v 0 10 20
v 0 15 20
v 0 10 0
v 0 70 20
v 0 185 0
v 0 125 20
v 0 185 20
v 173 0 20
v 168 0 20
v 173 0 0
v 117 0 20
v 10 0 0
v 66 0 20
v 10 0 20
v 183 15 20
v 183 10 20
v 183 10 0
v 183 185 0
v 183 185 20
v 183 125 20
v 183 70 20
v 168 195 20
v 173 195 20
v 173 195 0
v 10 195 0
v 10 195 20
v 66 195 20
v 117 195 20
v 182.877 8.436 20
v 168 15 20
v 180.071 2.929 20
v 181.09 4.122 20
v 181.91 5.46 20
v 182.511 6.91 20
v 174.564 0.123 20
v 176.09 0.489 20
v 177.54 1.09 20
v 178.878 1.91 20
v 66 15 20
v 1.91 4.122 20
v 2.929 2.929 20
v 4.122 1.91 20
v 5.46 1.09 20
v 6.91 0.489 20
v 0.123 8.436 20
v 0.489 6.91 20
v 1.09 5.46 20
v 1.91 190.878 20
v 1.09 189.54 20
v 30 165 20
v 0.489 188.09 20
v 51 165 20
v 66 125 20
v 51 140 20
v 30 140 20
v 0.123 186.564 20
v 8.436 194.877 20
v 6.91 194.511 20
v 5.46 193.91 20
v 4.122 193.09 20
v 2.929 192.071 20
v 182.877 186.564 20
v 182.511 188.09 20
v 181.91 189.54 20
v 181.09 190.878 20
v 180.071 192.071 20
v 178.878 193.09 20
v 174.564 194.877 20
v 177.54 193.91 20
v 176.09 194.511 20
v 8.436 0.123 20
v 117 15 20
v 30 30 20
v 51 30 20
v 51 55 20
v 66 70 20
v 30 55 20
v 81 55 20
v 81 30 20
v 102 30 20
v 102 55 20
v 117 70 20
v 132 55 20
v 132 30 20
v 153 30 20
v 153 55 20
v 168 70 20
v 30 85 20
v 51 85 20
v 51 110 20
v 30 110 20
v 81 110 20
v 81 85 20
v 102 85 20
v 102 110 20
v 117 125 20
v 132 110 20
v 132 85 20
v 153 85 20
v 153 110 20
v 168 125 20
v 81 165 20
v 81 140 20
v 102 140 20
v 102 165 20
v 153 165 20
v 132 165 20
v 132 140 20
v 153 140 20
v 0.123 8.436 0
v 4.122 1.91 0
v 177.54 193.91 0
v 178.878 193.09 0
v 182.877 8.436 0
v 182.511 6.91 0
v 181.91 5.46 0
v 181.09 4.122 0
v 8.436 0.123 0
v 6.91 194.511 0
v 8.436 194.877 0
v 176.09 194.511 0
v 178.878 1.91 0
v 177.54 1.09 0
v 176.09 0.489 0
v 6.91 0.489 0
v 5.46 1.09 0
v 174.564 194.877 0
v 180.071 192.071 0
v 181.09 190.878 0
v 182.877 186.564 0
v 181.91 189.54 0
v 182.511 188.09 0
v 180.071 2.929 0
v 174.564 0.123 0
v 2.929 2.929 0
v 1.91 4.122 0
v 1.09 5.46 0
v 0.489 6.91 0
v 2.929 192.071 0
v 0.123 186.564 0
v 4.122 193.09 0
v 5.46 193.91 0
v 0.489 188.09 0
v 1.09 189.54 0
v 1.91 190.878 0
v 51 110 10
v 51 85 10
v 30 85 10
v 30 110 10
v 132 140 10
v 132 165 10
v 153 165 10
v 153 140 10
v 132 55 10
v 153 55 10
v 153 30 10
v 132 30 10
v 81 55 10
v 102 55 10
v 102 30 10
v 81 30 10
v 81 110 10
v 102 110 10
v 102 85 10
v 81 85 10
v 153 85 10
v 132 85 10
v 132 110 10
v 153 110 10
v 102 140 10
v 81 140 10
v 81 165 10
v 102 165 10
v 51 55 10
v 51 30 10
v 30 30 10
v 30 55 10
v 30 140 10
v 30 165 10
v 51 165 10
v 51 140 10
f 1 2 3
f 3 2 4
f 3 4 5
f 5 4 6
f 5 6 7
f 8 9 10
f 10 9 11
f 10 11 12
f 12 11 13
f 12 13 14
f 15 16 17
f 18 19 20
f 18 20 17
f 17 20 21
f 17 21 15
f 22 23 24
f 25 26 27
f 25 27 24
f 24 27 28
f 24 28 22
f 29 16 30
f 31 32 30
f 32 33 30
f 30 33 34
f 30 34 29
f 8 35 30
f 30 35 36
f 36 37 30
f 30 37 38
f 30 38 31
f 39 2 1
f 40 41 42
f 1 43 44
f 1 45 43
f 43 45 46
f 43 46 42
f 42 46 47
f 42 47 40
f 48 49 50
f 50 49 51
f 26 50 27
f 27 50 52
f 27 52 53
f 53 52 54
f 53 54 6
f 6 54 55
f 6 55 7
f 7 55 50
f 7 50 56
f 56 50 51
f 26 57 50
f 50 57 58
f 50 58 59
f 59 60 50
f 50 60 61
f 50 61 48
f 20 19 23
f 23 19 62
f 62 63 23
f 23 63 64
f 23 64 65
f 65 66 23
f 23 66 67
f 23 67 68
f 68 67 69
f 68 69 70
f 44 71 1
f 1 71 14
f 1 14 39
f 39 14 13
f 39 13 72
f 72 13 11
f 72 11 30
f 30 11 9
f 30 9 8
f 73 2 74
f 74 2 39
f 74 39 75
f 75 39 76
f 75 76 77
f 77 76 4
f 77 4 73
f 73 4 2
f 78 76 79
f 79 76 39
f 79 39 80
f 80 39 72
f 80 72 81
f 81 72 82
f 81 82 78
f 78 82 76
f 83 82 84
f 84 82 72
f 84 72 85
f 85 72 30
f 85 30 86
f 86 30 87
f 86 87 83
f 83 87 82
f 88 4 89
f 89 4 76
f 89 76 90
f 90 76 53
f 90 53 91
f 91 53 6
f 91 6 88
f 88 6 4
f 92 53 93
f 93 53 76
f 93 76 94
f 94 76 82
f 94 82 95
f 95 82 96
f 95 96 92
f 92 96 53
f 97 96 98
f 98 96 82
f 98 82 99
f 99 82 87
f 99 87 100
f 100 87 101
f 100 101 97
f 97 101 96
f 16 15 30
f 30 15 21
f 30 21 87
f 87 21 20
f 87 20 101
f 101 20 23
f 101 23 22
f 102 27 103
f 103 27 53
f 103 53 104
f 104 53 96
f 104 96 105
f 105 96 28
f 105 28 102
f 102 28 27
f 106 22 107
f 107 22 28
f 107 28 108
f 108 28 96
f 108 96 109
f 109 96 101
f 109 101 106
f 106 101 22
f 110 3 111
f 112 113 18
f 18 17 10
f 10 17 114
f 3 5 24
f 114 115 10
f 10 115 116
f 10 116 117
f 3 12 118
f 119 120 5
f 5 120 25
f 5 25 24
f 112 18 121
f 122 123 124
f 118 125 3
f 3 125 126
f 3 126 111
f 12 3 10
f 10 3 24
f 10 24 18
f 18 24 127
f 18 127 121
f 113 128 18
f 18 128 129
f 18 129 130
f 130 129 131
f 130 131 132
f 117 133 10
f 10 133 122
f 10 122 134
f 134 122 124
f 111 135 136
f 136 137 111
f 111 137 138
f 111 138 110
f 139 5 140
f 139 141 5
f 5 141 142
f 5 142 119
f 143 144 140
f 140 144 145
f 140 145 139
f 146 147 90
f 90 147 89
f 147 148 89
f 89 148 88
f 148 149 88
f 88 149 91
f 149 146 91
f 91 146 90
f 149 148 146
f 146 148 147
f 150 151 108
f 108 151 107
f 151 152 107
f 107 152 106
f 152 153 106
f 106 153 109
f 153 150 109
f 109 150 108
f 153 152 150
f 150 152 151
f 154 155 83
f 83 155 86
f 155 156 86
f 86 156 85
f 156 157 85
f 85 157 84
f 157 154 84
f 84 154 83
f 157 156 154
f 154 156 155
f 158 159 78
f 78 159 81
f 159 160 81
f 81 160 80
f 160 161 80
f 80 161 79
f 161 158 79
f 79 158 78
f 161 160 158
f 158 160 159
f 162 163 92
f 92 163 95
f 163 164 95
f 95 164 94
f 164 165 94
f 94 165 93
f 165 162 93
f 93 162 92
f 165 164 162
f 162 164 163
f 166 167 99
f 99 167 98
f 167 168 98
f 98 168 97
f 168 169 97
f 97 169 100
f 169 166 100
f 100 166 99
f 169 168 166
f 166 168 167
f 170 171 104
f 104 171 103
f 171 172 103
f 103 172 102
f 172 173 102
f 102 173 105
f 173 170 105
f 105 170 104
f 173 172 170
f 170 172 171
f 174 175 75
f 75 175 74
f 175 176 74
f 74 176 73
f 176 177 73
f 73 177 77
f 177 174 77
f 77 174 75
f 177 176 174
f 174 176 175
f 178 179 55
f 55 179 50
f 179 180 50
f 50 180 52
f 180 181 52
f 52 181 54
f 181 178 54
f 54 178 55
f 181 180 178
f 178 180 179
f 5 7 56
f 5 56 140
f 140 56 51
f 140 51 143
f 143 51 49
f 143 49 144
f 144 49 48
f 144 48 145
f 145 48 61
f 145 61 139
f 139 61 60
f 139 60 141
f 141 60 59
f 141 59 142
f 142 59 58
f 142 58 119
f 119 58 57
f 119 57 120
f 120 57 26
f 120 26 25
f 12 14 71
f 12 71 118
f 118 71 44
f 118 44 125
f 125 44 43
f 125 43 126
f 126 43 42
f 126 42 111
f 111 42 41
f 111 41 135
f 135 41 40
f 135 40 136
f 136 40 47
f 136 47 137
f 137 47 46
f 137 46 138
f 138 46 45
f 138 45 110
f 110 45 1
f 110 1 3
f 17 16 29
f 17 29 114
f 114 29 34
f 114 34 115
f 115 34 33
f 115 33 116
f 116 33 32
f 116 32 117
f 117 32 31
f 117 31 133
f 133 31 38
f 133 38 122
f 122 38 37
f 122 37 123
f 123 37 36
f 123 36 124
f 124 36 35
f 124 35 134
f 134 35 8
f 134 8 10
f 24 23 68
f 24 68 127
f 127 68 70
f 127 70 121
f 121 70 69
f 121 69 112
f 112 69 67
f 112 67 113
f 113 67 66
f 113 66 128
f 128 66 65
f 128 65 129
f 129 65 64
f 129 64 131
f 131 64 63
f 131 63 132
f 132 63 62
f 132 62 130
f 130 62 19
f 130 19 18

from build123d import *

# Parameters (mm, degrees)
SKETCH1_W           = 183
SKETCH1_H           = 195
BOSS_EXTRUDE2_DEPTH = 20
SKETCH3_W           = 21
SKETCH3_H           = 25
CUT_EXTRUDE1_DEPTH  = 10
CUT_EXTRUDE2_DEPTH  = 135


with BuildPart() as part:
    # Sketch1 → Boss-Extrude2 (new body)
    with BuildSketch(Plane.XY):
        with Locations((91.5, 97.5)):
            Rectangle(SKETCH1_W, SKETCH1_H)
    extrude(amount=BOSS_EXTRUDE2_DEPTH)

    # Sketch3 → Cut-Extrude1 (cut)
    with BuildSketch(Plane.XY.offset(20)):
        with Locations((40.5, 97.5)):
            Rectangle(SKETCH3_W, SKETCH3_H)
        with Locations((40.5, 152.5)):
            Rectangle(SKETCH3_W, SKETCH3_H)
        with Locations((91.5, 152.5)):
            Rectangle(SKETCH3_W, SKETCH3_H)
        with Locations((40.5, 42.5)):
            Rectangle(SKETCH3_W, SKETCH3_H)
        with Locations((91.5, 97.5)):
            Rectangle(SKETCH3_W, SKETCH3_H)
        with Locations((91.5, 42.5)):
            Rectangle(SKETCH3_W, SKETCH3_H)
        with Locations((142.5, 97.5)):
            Rectangle(SKETCH3_W, SKETCH3_H)
        with Locations((142.5, 42.5)):
            Rectangle(SKETCH3_W, SKETCH3_H)
        with Locations((142.5, 152.5)):
            Rectangle(SKETCH3_W, SKETCH3_H)
    extrude(amount=-CUT_EXTRUDE1_DEPTH, mode=Mode.SUBTRACT)

    # Sketch4 → Cut-Extrude2 (cut)
    with BuildSketch(Plane.XY.offset(20)):
        with BuildLine():
            Line((0, 185), (0, 195))
            Line((0, 195), (10, 195))
            ThreePointArc((10, 195), (2.928932188, 192.071067812), (0, 185))
        make_face()
        with BuildLine():
            Line((173, 195), (183, 195))
            Line((183, 195), (183, 185))
            ThreePointArc((183, 185), (180.071067812, 192.071067812), (173, 195))
        make_face()
        with BuildLine():
            Line((183, 10), (183, 0))
            Line((183, 0), (173, 0))
            ThreePointArc((173, 0), (180.071067812, 2.928932188), (183, 10))
        make_face()
        with BuildLine():
            Line((10, 0), (0, 0))
            Line((0, 0), (0, 10))
            ThreePointArc((0, 10), (2.928932188, 2.928932188), (10, 0))
        make_face()
    extrude(amount=-CUT_EXTRUDE2_DEPTH, mode=Mode.SUBTRACT)


solid = part.part
